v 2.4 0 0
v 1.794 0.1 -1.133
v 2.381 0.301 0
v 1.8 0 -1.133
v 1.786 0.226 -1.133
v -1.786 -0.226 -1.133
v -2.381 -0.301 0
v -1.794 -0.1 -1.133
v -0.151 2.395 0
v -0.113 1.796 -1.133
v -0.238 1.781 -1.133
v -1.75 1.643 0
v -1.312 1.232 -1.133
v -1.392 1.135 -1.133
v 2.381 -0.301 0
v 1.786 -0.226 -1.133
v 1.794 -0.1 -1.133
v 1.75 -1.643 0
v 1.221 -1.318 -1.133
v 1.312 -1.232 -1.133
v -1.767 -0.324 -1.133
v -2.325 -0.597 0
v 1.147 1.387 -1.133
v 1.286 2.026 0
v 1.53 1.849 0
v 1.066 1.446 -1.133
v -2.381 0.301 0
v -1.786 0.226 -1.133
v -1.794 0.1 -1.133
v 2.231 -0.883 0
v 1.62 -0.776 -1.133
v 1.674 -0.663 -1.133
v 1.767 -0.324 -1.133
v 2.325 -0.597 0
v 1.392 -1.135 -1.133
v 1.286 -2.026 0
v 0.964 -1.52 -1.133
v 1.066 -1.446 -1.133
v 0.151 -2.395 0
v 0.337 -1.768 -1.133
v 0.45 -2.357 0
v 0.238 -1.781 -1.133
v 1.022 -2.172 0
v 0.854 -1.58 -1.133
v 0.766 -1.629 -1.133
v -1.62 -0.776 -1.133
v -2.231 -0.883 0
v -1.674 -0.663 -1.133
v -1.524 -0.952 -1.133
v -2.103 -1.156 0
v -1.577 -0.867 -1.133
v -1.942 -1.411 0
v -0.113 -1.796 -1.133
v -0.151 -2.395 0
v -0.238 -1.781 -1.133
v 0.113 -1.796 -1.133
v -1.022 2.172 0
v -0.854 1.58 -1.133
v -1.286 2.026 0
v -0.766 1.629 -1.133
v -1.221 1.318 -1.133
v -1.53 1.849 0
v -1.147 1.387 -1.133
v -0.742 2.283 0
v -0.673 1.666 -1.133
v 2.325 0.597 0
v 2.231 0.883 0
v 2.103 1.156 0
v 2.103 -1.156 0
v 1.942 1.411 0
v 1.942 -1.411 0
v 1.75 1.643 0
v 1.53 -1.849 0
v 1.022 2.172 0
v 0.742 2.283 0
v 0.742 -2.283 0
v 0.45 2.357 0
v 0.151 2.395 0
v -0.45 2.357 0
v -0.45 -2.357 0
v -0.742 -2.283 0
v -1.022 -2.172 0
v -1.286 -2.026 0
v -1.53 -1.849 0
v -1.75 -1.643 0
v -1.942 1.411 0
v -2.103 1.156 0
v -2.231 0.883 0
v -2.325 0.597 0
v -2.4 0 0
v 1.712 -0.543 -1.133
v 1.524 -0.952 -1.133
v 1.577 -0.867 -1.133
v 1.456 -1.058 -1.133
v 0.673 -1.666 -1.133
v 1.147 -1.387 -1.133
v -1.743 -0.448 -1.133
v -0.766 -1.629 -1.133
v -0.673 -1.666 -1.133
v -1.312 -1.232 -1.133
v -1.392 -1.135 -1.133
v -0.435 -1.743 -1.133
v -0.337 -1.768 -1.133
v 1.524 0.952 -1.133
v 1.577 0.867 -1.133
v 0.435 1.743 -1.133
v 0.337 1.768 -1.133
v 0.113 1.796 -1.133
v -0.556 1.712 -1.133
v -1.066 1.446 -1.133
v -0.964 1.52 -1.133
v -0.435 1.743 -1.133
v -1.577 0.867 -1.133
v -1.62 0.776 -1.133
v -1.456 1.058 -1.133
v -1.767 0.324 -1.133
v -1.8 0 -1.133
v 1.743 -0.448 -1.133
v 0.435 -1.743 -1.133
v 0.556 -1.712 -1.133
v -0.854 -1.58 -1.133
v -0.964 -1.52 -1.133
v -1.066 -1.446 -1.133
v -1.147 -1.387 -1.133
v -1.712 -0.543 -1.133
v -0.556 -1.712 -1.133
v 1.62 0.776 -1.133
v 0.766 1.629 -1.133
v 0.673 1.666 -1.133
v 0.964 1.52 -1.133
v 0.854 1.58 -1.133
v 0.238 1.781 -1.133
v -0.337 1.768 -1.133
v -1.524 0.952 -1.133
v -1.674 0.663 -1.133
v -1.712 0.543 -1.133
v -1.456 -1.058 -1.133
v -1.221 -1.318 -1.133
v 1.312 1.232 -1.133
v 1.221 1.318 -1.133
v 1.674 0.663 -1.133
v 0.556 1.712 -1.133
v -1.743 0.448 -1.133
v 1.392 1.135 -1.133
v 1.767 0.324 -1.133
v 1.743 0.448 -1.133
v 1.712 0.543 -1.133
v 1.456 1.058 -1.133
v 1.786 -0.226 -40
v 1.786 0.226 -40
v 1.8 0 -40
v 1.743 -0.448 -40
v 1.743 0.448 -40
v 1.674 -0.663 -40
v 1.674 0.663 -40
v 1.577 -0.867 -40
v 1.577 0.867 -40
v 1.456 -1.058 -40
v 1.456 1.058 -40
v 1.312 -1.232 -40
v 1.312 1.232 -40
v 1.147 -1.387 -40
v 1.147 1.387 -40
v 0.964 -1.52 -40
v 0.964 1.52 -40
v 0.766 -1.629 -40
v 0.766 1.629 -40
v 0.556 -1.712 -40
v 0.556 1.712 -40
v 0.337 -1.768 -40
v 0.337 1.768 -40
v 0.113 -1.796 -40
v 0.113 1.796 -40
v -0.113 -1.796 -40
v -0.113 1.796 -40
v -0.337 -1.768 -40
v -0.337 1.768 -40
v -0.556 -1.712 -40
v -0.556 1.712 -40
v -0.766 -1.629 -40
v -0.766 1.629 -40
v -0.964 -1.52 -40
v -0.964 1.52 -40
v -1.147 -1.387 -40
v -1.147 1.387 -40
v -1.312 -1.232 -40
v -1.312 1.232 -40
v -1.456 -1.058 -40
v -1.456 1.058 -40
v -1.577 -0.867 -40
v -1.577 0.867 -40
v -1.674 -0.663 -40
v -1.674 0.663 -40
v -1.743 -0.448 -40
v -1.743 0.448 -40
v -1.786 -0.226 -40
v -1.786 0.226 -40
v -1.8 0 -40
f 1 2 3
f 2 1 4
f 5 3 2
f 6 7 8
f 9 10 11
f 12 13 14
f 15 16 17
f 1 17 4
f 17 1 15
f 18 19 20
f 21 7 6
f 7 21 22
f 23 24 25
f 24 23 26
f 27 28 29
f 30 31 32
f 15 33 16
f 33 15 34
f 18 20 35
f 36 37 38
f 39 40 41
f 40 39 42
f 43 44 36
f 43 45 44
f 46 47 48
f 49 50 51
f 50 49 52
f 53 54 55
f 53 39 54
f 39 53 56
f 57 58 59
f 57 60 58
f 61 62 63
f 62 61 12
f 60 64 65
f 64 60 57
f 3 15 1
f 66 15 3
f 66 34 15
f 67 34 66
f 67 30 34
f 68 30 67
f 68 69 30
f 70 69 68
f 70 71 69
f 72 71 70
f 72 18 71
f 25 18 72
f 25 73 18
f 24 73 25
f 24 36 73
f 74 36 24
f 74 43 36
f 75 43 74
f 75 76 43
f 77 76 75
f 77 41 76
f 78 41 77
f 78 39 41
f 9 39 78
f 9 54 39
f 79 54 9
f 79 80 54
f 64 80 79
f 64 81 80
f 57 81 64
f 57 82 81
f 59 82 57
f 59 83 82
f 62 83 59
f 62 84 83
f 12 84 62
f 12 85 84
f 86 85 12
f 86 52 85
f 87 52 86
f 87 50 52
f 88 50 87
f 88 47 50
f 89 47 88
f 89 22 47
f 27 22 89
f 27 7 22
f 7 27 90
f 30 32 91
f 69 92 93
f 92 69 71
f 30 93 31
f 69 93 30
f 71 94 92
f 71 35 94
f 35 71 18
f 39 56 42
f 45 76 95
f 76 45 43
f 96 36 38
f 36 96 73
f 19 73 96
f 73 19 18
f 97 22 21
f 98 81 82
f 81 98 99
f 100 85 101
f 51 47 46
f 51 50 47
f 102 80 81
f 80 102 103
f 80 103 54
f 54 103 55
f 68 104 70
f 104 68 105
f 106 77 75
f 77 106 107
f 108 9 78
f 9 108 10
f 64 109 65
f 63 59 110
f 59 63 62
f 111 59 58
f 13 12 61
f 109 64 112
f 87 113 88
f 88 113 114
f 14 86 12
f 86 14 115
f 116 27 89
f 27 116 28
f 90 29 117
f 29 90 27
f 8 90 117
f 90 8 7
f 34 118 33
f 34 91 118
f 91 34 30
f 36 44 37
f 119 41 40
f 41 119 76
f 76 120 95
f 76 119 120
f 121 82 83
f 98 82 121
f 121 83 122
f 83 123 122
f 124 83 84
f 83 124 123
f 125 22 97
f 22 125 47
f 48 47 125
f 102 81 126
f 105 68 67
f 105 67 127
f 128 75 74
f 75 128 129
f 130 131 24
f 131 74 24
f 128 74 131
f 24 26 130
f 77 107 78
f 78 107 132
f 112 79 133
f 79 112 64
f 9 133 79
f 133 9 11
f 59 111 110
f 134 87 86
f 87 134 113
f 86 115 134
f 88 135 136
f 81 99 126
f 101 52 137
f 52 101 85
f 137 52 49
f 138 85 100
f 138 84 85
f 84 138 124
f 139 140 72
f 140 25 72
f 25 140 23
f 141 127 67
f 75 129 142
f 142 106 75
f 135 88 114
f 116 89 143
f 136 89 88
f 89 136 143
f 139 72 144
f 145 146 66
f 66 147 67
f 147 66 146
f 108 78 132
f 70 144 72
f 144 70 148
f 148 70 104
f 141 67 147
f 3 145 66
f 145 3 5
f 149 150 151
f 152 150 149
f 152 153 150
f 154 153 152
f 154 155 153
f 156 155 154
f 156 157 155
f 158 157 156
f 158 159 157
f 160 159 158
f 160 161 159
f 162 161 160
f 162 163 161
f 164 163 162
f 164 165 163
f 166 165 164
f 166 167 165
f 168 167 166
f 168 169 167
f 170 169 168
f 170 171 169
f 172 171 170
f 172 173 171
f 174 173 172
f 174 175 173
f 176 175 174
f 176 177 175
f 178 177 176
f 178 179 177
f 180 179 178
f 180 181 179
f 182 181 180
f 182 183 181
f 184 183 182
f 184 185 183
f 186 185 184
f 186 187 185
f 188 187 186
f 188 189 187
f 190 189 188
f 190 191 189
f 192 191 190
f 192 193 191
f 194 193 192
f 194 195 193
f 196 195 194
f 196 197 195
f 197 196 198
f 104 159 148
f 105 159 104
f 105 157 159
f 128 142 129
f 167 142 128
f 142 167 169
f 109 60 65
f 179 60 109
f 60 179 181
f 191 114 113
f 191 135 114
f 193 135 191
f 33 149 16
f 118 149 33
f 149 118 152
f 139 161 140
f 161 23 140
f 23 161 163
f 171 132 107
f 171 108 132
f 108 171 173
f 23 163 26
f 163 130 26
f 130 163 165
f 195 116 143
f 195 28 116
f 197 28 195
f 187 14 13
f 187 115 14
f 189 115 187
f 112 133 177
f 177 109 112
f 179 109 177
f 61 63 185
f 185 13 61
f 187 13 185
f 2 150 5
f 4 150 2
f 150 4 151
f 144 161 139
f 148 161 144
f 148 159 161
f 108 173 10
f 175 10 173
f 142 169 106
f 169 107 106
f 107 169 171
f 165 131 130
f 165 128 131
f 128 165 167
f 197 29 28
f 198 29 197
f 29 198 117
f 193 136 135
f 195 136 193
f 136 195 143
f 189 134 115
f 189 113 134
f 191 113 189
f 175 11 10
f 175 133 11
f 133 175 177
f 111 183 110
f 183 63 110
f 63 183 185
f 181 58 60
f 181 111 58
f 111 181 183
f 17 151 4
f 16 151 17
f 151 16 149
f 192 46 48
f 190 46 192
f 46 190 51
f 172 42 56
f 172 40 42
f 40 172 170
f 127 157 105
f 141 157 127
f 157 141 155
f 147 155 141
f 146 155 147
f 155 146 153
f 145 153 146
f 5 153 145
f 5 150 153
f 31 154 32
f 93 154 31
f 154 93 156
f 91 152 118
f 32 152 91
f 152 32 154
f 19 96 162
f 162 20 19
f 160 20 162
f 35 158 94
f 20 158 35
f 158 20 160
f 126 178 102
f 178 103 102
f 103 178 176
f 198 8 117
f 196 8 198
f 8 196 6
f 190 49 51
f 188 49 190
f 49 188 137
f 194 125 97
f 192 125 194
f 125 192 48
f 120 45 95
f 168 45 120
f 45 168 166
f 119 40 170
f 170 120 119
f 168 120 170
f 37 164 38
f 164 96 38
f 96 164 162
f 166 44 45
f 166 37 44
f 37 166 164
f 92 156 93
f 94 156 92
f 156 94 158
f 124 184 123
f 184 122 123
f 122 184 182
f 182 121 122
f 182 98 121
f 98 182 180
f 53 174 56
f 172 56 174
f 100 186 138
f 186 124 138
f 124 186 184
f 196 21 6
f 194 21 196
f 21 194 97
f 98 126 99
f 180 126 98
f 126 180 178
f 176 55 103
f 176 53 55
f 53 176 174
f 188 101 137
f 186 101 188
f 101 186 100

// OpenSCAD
$fn = 50;


difference() {
	union() {
		translate(v = [0, 0, 0]) {
			rotate(a = [0, 0, 0]) {
				difference() {
					union() {
						translate(v = [0, 0, -1.7000000000]) {
							cylinder(h = 1.7000000000, r1 = 1.5000000000, r2 = 2.4000000000);
						}
						translate(v = [0, 0, -40.0000000000]) {
							cylinder(h = 40, r = 1.5000000000);
						}
						translate(v = [0, 0, -40.0000000000]) {
							cylinder(h = 40, r = 1.8000000000);
						}
						translate(v = [0, 0, -40.0000000000]) {
							cylinder(h = 40, r = 1.5000000000);
						}
					}
					union();
				}
			}
		}
	}
	union();
}
